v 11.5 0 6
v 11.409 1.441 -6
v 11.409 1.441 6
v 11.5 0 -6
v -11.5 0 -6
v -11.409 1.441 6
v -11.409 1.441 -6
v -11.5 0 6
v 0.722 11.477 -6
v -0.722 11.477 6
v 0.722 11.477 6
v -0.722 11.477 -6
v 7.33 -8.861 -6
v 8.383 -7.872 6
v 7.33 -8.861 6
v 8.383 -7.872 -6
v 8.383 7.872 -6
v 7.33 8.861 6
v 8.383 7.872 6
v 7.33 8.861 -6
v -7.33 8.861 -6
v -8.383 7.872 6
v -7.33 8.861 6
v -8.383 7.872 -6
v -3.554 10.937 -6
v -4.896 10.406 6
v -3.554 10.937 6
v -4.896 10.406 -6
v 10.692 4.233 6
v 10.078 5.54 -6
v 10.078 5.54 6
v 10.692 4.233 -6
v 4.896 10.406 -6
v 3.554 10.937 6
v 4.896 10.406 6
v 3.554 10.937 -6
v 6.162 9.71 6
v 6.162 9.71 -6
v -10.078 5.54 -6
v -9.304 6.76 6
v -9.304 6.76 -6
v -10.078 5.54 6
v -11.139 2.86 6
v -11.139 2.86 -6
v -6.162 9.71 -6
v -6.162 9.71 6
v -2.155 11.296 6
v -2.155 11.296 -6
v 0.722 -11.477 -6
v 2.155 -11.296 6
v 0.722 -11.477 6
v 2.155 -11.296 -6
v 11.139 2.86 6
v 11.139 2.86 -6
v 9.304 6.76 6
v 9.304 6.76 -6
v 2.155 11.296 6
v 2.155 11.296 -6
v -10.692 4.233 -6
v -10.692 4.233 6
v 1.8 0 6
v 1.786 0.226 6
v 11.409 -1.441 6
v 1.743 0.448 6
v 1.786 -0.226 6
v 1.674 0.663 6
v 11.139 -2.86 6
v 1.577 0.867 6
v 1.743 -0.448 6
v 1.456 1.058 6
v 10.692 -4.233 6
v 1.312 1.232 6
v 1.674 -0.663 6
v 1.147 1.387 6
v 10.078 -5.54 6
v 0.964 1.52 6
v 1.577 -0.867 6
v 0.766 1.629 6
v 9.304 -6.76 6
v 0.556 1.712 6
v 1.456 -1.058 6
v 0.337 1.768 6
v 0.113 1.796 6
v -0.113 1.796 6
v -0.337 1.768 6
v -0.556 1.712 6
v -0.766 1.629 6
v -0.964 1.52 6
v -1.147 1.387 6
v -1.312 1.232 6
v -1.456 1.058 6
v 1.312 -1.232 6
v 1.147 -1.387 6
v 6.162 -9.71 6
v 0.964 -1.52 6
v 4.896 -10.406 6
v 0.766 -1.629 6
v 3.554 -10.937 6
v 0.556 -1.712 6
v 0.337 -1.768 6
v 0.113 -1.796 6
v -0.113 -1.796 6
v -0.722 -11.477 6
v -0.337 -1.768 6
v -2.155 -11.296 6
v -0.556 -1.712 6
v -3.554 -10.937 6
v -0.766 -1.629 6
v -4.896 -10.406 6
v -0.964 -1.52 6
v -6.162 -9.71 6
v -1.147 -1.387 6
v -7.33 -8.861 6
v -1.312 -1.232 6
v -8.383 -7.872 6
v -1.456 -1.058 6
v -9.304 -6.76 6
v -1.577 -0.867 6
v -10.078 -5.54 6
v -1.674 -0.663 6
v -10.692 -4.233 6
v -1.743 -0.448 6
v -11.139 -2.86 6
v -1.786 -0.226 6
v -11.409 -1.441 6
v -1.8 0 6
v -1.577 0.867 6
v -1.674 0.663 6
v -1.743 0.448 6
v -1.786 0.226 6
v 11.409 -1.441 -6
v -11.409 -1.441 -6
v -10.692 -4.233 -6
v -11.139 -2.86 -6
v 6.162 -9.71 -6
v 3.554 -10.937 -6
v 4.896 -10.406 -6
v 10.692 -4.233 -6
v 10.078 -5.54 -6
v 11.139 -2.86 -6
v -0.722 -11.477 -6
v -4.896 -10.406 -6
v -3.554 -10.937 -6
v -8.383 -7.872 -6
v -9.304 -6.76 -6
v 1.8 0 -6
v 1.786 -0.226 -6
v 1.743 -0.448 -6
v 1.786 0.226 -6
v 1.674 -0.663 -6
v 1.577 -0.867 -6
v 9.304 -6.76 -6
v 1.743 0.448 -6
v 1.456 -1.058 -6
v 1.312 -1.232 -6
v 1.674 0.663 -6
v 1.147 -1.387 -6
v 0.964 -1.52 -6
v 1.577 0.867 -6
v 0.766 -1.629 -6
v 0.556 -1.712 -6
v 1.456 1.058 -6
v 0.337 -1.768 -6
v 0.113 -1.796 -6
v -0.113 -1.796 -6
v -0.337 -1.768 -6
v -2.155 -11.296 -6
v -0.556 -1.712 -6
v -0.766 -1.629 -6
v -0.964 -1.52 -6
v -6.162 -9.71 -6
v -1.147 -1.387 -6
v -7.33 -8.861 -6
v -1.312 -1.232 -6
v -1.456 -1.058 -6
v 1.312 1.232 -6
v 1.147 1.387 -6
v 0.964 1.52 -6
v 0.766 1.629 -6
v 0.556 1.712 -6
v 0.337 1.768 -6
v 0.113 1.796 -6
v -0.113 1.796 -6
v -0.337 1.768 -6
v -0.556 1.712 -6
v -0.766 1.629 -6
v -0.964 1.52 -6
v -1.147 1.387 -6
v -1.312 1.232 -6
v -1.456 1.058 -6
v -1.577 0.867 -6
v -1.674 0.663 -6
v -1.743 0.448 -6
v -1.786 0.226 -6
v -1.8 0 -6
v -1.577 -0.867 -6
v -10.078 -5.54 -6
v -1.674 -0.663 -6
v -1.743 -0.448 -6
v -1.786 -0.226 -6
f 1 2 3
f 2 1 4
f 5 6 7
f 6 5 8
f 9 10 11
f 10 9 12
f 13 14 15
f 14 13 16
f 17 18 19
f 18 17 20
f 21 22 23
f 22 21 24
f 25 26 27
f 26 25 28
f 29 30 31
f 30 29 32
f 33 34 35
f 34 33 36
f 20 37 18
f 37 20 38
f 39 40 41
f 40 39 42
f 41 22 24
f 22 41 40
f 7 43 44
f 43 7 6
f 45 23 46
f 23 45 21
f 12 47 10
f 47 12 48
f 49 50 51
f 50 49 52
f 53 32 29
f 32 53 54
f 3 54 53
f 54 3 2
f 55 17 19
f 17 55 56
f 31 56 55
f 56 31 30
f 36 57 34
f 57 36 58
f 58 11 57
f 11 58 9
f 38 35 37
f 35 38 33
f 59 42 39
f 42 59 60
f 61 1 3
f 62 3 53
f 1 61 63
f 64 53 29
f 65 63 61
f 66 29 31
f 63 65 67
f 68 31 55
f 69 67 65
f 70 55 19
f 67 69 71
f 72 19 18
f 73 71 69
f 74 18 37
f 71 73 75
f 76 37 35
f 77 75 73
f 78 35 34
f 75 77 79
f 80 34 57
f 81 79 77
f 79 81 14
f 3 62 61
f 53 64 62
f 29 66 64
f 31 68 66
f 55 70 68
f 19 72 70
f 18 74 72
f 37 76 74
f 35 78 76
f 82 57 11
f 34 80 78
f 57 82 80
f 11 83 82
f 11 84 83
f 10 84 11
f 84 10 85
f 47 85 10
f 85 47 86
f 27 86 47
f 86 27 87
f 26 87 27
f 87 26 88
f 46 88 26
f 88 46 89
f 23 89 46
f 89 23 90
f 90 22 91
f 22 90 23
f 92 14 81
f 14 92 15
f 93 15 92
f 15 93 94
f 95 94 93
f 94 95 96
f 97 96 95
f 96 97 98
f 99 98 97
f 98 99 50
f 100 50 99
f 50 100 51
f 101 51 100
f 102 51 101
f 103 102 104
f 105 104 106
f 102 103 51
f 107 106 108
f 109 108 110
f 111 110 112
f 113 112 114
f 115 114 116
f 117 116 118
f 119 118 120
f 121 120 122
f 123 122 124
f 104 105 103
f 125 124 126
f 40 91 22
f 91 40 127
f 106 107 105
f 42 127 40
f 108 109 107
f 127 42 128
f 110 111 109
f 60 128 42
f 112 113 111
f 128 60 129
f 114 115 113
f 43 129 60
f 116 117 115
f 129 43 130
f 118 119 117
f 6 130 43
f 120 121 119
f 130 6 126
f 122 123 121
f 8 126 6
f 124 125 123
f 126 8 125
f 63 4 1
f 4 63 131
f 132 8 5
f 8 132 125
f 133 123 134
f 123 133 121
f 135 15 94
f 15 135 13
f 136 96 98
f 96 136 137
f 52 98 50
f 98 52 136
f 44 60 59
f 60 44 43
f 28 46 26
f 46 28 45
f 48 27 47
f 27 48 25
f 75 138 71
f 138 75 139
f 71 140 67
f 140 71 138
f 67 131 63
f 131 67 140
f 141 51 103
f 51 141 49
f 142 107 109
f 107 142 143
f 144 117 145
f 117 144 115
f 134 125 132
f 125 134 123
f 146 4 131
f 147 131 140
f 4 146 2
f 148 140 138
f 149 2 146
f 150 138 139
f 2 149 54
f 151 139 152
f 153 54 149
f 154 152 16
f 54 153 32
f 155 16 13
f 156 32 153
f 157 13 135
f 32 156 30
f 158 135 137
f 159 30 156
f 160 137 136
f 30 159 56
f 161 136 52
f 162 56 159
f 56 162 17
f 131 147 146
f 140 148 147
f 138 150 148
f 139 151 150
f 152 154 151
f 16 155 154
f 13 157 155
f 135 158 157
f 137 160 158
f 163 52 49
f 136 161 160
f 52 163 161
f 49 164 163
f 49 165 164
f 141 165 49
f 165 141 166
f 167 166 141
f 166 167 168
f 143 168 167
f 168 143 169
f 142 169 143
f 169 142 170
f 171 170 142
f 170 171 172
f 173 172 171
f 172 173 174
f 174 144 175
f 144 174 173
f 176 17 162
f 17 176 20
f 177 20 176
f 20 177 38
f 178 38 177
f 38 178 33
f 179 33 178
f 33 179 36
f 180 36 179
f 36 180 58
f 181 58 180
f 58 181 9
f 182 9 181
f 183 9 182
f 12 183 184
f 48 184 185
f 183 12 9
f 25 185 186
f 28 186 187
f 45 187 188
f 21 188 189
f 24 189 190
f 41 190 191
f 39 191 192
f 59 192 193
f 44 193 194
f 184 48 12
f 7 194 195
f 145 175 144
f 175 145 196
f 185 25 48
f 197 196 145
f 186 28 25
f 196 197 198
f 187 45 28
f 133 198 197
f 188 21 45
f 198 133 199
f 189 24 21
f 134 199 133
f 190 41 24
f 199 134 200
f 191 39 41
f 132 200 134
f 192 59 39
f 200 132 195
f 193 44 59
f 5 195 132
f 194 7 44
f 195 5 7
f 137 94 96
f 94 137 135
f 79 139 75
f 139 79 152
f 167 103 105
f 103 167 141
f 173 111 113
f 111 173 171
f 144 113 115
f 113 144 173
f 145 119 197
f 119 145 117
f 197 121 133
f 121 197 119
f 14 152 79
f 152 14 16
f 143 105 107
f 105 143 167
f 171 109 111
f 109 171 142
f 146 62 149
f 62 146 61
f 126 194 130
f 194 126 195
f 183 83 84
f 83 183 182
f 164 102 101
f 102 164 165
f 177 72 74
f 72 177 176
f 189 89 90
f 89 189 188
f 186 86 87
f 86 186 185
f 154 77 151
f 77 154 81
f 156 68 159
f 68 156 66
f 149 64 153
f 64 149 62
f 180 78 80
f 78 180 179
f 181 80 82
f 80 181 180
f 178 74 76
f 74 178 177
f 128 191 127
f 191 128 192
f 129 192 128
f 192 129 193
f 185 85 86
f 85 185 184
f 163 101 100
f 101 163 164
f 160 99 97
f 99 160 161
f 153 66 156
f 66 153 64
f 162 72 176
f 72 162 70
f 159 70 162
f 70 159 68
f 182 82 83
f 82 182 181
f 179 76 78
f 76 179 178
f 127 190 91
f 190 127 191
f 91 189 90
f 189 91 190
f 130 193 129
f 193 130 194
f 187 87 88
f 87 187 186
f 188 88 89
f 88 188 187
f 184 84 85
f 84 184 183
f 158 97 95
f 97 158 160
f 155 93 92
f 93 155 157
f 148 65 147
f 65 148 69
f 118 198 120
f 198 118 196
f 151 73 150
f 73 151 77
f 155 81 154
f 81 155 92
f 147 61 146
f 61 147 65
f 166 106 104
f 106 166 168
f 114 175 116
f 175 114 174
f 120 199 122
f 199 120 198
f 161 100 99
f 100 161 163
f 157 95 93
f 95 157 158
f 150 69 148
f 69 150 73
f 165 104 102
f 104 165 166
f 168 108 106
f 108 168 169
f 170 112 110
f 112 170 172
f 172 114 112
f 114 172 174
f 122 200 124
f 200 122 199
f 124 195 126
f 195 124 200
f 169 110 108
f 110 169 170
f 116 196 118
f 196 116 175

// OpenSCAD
$fn = 50;


difference() {
	union() {
		translate(v = [0, 0, -6.0000000000]) {
			cylinder(h = 12, r = 11.5000000000);
		}
	}
	union() {
		translate(v = [0, 0, -100.0000000000]) {
			cylinder(h = 200, r = 1.8000000000);
		}
	}
}
